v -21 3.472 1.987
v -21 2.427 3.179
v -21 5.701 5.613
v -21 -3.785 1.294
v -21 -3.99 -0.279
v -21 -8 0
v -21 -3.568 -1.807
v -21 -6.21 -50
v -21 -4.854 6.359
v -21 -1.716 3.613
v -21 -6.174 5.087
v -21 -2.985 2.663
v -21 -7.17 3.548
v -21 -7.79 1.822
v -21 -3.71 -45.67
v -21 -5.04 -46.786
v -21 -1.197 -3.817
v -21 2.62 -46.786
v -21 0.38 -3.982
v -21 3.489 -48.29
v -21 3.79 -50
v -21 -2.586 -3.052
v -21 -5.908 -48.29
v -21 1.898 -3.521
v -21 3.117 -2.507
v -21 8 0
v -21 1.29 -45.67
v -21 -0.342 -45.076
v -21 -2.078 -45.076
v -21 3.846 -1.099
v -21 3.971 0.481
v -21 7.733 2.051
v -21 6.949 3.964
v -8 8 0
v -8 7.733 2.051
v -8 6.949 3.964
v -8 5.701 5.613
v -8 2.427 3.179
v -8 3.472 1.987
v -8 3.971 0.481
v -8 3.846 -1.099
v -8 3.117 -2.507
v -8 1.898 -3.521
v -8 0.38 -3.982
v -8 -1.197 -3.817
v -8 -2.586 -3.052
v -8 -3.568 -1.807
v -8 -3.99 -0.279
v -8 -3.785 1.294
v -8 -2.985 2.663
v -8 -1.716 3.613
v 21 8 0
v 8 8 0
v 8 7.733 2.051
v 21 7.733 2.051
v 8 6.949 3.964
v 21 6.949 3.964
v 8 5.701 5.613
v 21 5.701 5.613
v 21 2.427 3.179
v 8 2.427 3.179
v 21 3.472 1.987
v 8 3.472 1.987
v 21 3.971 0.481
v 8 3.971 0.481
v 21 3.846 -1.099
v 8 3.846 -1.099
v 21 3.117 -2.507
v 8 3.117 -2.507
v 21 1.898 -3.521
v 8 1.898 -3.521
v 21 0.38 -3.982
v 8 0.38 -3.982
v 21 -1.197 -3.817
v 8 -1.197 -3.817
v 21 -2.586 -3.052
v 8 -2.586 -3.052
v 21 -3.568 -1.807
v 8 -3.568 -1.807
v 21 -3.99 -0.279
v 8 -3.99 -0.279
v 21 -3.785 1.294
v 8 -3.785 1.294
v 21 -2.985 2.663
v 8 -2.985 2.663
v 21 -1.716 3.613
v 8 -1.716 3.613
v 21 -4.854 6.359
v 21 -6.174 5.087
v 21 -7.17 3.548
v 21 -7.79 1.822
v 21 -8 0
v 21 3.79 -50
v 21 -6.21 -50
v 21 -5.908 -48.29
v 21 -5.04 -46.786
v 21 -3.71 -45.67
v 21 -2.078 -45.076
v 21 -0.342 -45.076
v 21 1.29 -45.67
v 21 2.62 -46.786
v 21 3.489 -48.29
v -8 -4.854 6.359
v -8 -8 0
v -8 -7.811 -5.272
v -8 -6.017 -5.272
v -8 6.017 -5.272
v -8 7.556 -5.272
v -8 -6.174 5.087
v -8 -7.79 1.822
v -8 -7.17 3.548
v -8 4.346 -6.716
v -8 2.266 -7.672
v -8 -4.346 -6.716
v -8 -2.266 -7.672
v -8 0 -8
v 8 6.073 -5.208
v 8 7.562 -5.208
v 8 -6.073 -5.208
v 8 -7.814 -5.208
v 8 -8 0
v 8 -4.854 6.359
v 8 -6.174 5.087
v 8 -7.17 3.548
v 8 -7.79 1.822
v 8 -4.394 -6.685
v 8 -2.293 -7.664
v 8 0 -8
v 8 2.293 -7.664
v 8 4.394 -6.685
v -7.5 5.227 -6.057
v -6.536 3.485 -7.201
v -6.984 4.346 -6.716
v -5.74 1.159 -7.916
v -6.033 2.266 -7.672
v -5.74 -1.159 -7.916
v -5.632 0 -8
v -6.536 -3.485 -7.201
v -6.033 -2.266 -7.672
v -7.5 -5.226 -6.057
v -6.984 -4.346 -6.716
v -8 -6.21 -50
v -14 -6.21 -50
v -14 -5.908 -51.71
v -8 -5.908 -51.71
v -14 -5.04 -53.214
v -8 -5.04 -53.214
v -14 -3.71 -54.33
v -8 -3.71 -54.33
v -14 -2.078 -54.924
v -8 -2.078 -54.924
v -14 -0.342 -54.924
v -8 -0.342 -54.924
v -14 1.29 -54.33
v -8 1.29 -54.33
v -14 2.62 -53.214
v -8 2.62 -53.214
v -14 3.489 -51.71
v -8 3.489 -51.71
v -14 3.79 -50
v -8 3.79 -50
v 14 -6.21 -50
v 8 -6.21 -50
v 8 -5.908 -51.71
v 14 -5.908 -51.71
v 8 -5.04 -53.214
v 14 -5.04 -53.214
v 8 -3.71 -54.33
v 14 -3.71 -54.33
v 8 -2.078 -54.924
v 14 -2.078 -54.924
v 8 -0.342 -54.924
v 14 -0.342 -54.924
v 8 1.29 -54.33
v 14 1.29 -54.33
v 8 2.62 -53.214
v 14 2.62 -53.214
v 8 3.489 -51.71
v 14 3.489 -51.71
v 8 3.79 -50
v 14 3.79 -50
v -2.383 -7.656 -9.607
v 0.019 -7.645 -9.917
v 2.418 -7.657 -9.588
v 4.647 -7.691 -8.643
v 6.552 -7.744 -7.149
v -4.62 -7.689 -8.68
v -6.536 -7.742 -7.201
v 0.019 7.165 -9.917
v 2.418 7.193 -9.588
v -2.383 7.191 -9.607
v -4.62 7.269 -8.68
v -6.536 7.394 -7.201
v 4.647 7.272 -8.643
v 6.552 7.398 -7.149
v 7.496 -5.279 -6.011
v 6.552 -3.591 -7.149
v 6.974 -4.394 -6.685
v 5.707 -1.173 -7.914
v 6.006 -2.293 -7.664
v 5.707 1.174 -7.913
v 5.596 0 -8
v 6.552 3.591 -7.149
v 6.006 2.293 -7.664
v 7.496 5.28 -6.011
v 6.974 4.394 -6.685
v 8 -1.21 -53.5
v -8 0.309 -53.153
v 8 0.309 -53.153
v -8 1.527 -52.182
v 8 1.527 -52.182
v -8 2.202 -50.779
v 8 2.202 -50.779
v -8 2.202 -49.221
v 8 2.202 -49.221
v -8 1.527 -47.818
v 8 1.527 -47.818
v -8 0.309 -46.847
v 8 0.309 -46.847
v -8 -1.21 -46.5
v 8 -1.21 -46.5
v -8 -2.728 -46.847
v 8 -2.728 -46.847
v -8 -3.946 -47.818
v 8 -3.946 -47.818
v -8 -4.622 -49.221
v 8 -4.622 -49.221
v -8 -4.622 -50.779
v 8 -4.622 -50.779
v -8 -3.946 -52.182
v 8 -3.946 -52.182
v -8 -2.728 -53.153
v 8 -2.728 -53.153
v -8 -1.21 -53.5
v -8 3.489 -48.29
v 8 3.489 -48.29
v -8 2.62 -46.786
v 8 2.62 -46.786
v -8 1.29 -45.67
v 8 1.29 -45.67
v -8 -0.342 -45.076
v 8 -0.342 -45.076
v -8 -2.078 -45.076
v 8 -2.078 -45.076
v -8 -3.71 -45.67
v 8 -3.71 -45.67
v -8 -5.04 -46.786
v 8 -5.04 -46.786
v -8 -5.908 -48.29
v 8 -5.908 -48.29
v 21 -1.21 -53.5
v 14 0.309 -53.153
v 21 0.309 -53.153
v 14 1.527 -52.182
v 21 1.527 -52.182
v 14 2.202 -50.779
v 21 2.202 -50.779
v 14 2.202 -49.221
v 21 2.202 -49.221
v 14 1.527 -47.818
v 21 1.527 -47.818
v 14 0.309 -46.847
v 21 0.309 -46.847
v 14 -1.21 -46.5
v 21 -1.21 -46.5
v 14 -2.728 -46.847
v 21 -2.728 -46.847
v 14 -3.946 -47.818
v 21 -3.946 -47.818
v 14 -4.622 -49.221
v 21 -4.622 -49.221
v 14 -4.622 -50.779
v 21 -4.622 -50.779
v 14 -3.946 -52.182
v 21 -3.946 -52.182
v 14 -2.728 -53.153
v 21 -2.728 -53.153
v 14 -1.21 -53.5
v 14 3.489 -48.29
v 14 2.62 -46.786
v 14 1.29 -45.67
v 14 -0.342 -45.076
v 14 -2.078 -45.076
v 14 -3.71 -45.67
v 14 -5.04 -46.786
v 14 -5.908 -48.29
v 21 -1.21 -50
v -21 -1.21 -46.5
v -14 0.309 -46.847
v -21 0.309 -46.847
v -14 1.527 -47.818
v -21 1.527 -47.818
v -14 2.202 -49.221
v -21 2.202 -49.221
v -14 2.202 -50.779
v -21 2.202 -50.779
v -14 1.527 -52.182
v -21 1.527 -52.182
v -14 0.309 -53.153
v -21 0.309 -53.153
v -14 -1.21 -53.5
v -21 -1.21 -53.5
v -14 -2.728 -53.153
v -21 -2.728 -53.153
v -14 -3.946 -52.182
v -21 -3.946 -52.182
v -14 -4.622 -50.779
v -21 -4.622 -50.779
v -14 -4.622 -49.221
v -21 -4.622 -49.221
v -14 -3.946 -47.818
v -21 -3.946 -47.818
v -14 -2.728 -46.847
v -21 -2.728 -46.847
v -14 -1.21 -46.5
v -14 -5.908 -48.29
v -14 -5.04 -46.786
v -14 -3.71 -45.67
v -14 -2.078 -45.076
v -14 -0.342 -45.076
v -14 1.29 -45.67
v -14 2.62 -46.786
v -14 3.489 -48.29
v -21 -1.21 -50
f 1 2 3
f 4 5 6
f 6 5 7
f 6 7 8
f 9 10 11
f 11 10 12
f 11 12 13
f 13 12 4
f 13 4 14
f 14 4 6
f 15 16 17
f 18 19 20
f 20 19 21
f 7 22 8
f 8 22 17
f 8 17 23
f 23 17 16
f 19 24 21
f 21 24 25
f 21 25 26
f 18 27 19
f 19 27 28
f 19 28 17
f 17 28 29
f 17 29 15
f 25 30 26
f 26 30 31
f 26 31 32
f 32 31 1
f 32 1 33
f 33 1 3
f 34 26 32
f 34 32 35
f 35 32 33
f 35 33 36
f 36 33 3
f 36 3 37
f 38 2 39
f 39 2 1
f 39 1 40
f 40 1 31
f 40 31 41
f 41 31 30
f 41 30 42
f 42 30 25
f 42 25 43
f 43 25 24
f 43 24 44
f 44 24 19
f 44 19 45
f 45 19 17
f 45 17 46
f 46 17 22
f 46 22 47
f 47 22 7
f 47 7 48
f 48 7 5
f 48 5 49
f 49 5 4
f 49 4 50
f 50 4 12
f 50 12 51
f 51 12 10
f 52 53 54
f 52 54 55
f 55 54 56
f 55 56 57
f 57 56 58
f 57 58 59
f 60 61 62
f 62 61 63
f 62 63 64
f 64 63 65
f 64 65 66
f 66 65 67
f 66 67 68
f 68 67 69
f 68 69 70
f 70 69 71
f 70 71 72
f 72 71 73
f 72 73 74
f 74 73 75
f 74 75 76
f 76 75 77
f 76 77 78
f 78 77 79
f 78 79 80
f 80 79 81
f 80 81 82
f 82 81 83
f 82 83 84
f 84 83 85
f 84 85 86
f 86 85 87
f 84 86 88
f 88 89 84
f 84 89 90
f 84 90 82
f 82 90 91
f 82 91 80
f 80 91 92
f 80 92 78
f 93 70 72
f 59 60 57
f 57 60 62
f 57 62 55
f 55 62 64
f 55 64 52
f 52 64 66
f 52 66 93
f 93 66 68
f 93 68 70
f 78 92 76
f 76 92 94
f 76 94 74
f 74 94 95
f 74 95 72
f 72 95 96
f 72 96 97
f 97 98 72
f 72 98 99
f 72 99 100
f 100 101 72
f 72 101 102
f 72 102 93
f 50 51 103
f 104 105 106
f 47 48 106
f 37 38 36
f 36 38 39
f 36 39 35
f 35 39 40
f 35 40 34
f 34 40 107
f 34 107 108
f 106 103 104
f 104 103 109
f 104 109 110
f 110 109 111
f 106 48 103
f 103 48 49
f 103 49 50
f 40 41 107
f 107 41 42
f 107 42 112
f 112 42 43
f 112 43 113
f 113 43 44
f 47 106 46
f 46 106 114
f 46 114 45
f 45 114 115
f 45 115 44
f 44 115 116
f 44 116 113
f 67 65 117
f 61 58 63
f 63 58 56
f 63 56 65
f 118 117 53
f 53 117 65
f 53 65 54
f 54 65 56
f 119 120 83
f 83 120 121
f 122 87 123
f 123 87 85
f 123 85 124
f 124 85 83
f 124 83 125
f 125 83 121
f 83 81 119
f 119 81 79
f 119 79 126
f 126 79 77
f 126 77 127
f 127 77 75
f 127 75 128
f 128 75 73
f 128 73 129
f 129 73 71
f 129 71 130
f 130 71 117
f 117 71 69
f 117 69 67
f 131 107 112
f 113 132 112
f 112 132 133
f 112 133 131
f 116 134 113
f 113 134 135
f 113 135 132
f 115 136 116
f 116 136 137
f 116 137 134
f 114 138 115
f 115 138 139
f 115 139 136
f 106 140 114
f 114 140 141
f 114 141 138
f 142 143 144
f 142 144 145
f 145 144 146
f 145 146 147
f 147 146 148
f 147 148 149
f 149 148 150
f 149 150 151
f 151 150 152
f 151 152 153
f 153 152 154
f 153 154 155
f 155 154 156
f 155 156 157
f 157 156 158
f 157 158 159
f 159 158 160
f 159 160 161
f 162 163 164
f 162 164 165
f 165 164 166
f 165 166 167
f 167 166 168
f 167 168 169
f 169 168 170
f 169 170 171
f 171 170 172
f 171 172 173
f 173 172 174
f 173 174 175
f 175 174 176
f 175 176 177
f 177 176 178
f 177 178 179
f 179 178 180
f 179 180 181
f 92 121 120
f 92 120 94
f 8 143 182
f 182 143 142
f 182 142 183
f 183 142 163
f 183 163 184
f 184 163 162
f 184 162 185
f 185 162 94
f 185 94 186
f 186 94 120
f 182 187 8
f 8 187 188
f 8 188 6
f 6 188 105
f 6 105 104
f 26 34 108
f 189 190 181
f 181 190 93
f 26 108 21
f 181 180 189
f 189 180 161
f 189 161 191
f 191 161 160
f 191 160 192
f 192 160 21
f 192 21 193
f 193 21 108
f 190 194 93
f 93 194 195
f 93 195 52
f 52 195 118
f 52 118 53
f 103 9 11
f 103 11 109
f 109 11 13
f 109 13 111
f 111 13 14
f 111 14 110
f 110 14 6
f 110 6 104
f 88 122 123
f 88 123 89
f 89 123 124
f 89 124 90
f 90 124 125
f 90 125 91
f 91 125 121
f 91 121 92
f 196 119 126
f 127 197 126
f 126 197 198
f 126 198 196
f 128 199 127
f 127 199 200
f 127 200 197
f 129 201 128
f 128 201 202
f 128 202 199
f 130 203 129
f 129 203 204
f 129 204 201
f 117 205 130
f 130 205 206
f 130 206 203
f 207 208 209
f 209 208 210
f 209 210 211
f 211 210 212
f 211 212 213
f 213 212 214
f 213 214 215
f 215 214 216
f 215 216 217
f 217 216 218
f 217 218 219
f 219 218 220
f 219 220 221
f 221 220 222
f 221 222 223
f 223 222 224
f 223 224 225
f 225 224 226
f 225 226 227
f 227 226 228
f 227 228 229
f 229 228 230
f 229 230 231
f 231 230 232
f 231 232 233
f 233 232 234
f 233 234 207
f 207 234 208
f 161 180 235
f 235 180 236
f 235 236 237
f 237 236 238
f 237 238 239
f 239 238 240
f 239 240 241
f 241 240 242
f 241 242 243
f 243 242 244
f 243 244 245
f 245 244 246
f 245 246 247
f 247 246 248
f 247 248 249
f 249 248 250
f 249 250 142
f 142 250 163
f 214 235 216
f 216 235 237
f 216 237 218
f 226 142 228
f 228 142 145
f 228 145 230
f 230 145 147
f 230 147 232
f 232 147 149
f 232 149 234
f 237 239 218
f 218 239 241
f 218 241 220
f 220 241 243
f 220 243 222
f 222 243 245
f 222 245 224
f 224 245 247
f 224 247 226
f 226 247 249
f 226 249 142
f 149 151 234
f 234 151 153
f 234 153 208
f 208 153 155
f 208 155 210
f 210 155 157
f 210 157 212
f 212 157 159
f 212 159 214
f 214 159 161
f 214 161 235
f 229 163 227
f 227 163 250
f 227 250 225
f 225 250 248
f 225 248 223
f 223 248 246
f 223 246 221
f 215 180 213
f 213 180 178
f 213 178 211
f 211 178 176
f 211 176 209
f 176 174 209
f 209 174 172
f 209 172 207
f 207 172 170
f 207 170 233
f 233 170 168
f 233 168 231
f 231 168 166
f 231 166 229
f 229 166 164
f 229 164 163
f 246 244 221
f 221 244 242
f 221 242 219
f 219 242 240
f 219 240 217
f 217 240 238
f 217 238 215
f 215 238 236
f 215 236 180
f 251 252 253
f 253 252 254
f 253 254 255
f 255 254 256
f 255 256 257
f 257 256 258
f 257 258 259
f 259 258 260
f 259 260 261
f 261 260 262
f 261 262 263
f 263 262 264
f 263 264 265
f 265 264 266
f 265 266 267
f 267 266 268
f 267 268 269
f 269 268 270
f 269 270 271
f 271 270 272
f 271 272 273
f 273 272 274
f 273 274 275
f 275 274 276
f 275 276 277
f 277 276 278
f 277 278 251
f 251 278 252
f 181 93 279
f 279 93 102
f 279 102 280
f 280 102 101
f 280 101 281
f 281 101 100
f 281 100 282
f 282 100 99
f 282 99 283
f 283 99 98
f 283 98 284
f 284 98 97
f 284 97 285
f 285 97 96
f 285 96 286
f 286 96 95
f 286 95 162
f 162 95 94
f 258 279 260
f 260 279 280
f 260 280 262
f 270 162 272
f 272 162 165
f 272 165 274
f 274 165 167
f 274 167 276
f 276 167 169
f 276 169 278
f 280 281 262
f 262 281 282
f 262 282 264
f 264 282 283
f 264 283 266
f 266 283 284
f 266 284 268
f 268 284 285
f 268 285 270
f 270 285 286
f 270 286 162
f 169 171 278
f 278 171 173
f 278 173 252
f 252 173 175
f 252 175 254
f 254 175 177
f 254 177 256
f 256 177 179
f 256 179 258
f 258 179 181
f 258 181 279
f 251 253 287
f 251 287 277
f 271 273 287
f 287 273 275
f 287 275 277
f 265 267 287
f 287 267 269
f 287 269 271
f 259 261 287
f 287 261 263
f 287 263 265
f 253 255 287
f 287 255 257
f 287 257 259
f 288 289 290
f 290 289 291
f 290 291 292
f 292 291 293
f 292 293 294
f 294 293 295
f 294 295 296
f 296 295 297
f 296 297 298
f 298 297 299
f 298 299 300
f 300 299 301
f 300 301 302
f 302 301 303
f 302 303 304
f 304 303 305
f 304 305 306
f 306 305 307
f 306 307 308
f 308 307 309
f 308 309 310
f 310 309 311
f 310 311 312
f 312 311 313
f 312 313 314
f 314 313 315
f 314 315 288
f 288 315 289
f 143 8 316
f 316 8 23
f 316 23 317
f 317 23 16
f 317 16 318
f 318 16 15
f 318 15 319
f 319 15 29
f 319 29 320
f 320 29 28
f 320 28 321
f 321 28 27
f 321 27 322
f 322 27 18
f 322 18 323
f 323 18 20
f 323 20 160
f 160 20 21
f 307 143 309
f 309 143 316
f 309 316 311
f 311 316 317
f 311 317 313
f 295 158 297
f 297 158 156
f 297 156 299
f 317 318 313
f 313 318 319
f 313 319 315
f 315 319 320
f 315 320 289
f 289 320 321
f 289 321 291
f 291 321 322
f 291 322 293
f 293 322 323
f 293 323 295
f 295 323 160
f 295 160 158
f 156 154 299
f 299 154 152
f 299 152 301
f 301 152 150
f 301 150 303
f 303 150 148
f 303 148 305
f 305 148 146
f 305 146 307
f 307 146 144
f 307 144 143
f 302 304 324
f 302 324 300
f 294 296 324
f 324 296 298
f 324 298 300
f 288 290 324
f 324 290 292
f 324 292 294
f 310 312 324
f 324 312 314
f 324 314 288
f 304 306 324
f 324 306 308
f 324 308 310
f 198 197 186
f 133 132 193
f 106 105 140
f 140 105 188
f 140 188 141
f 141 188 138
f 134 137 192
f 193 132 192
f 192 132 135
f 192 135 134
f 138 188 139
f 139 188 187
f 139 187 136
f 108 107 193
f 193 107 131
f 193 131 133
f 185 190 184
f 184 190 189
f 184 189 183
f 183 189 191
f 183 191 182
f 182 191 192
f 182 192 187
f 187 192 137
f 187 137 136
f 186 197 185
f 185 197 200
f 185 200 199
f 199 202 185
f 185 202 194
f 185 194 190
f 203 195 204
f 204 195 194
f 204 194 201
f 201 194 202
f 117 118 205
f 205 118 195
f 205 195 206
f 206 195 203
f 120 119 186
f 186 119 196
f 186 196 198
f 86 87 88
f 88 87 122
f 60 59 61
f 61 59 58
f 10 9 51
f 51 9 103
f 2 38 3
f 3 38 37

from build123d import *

# Parameters (mm, degrees)
SKETCH1_R           = 4
SKETCH1_R_2         = 5
SKETCH1_R_3         = 3.5
BOSS_EXTRUDE1_DEPTH = 21
SKETCH1_4_R         = 4
CUT_EXTRUDE2_DEPTH  = 8
SKETCH1_5_R         = 5
SKETCH1_5_R_2       = 3.5
CUT_EXTRUDE3_DEPTH  = 8
CUT_EXTRUDE4_START  = 21
SKETCH1_6_R         = 5
SKETCH1_6_R_2       = 3.5
CUT_EXTRUDE4_DEPTH  = 7
CUT_EXTRUDE5_DEPTH  = 10
CUT_EXTRUDE6_REACH  = 71.663


with BuildPart() as part:
    # Sketch1 → Boss-Extrude1 (new, symmetric)
    # profile 1 of 4: a face of its own
    with BuildSketch(Plane(origin=(0, 0, 0), x_dir=(0, 0, -1), z_dir=(1, 0, 0))):
        with BuildLine():
            Line((50, 3.790245356), (1.337639211, 7.887377342))
            ThreePointArc((1.337639211, 7.887377342), (6.111510193, 5.162309866), (8, 0))
            ThreePointArc((8, 0), (5.855645149, -5.450818277), (0.572145029, -7.9795144))
            Line((0.572145029, -7.9795144), (50, -6.209754644))
            ThreePointArc((50, -6.209754644), (45, -1.209754644), (50, 3.790245356))
        make_face()
    # profile 2 of 4: a face of its own
    with BuildSketch(Plane(origin=(0, 0, 0), x_dir=(0, 0, -1), z_dir=(1, 0, 0))):
        with BuildLine():
            Line((1.337639211, 7.887377342), (0, 8))
            ThreePointArc((0, 8), (-8, 0), (0, -8))
            Line((0, -8), (0.572145029, -7.9795144))
            ThreePointArc((0.572145029, -7.9795144), (5.855645149, -5.450818277), (8, 0))
            ThreePointArc((8, 0), (6.111510193, 5.162309866), (1.337639211, 7.887377342))
        make_face()
        with Locations(Location((0, 0, 0), (0, 0, 180))):
            Circle(SKETCH1_R, mode=Mode.SUBTRACT)
    # profile 3 of 4: a face of its own
    with BuildSketch(Plane(origin=(0, 0, 0), x_dir=(0, 0, -1), z_dir=(1, 0, 0))):
        with Locations((50, -1.209754644)):
            Circle(SKETCH1_R_2)
        with Locations((50, -1.209754644)):
            Circle(SKETCH1_R_3, mode=Mode.SUBTRACT)
    # profile 4 of 4: a face of its own
    with BuildSketch(Plane(origin=(0, 0, 0), x_dir=(0, 0, -1), z_dir=(1, 0, 0))):
        with Locations((50, -1.209754644)):
            Circle(SKETCH1_R_3)
    extrude(amount=BOSS_EXTRUDE1_DEPTH, both=True)

    # Sketch1<4> → Cut-Extrude2 (cut, symmetric)
    with BuildSketch(Plane(origin=(0, 0, 0), x_dir=(0, 0, -1), z_dir=(1, 0, 0))):
        with BuildLine():
            Line((1.337639211, 7.887377342), (0, 8))
            ThreePointArc((0, 8), (-8, 0), (0, -8))
            Line((0, -8), (0.572145029, -7.9795144))
            ThreePointArc((0.572145029, -7.9795144), (5.855645149, -5.450818277), (8, 0))
            ThreePointArc((8, 0), (6.111510193, 5.162309866), (1.337639211, 7.887377342))
        make_face()
        with Locations(Location((0, 0, 0), (0, 0, 180))):
            Circle(SKETCH1_4_R, mode=Mode.SUBTRACT)
    extrude(amount=CUT_EXTRUDE2_DEPTH, both=True, mode=Mode.SUBTRACT)

    # Sketch1<5> → Cut-Extrude3 (cut, symmetric)
    with BuildSketch(Plane(origin=(0, 0, 0), x_dir=(0, 0, -1), z_dir=(1, 0, 0))):
        with Locations((50, -1.209754644)):
            Circle(SKETCH1_5_R)
        with Locations((50, -1.209754644)):
            Circle(SKETCH1_5_R_2, mode=Mode.SUBTRACT)
    extrude(amount=CUT_EXTRUDE3_DEPTH, both=True, mode=Mode.SUBTRACT)

    # Sketch1<6> → Cut-Extrude4 (cut)
    with BuildSketch(Plane(origin=(0, 0, 0), x_dir=(0, 0, -1), z_dir=(1, 0, 0)).offset(CUT_EXTRUDE4_START)):
        with Locations((50, -1.209754644)):
            Circle(SKETCH1_6_R)
        with Locations((50, -1.209754644)):
            Circle(SKETCH1_6_R_2, mode=Mode.SUBTRACT)
    cut_extrude4 = extrude(amount=-CUT_EXTRUDE4_DEPTH, mode=Mode.SUBTRACT)

    # Mirror1: Cut-Extrude4 across plane
    add(cut_extrude4.mirror(Plane(origin=(0, 0, 0), x_dir=(0, 0, 1), z_dir=(1, 0, 0))), mode=Mode.SUBTRACT)

    # Sketch3 → Cut-Extrude5 (cut, symmetric)
    with BuildSketch(Plane(origin=(0, 0, 0), x_dir=(1, 0, 0), z_dir=(0, 1, 0))):
        with BuildLine():
            Line((-8, 5.272211447), (-8, -3.420978971))
            Line((-8, -3.420978971), (8, -3.420978971))
            Line((8, -3.420978971), (8, 5.208098852))
            ThreePointArc((8, 5.208098852), (0.018739109, 9.916704947), (-8, 5.272211447))
        make_face()
    extrude(amount=CUT_EXTRUDE5_DEPTH, both=True, mode=Mode.SUBTRACT)

    # Cut-Extrude6: up to this face of the body (flat: up to its plane)
    cut_extrude6_end = Plane(part.part.faces().sort_by_distance((-21, -0.477188429, -19.332209002))[0])
    # Sketch4 → Cut-Extrude6 (cut, up to the picked face)
    with BuildSketch(Plane(origin=(21, 0, 0), x_dir=(0, 0, -1), z_dir=(1, 0, 0)), mode=Mode.PRIVATE) as cut_extrude6_sk1:
        with BuildLine():
            Line((-5.612672438, 5.700693652), (-3.179432131, 2.427181766))
            ThreePointArc((-3.179432131, 2.427181766), (-3.978246032, 0.416603538), (-3.613291572, -1.715844985))
            Line((-3.613291572, -1.715844985), (-6.359318362, -4.853768636))
            ThreePointArc((-6.359318362, -4.853768636), (-7.980056984, 0.564526819), (-5.612672438, 5.700693652))
        make_face()
    cut_extrude6_tool1 = split(extrude(cut_extrude6_sk1.sketch, amount=-CUT_EXTRUDE6_REACH, mode=Mode.PRIVATE), bisect_by=cut_extrude6_end, keep=Keep.BOTH, mode=Mode.PRIVATE)
    add(cut_extrude6_tool1.solids().sort_by(Axis((21, 0.46282, 5.810666), (-1, 0, 0)))[0], mode=Mode.SUBTRACT)


solid = part.part
